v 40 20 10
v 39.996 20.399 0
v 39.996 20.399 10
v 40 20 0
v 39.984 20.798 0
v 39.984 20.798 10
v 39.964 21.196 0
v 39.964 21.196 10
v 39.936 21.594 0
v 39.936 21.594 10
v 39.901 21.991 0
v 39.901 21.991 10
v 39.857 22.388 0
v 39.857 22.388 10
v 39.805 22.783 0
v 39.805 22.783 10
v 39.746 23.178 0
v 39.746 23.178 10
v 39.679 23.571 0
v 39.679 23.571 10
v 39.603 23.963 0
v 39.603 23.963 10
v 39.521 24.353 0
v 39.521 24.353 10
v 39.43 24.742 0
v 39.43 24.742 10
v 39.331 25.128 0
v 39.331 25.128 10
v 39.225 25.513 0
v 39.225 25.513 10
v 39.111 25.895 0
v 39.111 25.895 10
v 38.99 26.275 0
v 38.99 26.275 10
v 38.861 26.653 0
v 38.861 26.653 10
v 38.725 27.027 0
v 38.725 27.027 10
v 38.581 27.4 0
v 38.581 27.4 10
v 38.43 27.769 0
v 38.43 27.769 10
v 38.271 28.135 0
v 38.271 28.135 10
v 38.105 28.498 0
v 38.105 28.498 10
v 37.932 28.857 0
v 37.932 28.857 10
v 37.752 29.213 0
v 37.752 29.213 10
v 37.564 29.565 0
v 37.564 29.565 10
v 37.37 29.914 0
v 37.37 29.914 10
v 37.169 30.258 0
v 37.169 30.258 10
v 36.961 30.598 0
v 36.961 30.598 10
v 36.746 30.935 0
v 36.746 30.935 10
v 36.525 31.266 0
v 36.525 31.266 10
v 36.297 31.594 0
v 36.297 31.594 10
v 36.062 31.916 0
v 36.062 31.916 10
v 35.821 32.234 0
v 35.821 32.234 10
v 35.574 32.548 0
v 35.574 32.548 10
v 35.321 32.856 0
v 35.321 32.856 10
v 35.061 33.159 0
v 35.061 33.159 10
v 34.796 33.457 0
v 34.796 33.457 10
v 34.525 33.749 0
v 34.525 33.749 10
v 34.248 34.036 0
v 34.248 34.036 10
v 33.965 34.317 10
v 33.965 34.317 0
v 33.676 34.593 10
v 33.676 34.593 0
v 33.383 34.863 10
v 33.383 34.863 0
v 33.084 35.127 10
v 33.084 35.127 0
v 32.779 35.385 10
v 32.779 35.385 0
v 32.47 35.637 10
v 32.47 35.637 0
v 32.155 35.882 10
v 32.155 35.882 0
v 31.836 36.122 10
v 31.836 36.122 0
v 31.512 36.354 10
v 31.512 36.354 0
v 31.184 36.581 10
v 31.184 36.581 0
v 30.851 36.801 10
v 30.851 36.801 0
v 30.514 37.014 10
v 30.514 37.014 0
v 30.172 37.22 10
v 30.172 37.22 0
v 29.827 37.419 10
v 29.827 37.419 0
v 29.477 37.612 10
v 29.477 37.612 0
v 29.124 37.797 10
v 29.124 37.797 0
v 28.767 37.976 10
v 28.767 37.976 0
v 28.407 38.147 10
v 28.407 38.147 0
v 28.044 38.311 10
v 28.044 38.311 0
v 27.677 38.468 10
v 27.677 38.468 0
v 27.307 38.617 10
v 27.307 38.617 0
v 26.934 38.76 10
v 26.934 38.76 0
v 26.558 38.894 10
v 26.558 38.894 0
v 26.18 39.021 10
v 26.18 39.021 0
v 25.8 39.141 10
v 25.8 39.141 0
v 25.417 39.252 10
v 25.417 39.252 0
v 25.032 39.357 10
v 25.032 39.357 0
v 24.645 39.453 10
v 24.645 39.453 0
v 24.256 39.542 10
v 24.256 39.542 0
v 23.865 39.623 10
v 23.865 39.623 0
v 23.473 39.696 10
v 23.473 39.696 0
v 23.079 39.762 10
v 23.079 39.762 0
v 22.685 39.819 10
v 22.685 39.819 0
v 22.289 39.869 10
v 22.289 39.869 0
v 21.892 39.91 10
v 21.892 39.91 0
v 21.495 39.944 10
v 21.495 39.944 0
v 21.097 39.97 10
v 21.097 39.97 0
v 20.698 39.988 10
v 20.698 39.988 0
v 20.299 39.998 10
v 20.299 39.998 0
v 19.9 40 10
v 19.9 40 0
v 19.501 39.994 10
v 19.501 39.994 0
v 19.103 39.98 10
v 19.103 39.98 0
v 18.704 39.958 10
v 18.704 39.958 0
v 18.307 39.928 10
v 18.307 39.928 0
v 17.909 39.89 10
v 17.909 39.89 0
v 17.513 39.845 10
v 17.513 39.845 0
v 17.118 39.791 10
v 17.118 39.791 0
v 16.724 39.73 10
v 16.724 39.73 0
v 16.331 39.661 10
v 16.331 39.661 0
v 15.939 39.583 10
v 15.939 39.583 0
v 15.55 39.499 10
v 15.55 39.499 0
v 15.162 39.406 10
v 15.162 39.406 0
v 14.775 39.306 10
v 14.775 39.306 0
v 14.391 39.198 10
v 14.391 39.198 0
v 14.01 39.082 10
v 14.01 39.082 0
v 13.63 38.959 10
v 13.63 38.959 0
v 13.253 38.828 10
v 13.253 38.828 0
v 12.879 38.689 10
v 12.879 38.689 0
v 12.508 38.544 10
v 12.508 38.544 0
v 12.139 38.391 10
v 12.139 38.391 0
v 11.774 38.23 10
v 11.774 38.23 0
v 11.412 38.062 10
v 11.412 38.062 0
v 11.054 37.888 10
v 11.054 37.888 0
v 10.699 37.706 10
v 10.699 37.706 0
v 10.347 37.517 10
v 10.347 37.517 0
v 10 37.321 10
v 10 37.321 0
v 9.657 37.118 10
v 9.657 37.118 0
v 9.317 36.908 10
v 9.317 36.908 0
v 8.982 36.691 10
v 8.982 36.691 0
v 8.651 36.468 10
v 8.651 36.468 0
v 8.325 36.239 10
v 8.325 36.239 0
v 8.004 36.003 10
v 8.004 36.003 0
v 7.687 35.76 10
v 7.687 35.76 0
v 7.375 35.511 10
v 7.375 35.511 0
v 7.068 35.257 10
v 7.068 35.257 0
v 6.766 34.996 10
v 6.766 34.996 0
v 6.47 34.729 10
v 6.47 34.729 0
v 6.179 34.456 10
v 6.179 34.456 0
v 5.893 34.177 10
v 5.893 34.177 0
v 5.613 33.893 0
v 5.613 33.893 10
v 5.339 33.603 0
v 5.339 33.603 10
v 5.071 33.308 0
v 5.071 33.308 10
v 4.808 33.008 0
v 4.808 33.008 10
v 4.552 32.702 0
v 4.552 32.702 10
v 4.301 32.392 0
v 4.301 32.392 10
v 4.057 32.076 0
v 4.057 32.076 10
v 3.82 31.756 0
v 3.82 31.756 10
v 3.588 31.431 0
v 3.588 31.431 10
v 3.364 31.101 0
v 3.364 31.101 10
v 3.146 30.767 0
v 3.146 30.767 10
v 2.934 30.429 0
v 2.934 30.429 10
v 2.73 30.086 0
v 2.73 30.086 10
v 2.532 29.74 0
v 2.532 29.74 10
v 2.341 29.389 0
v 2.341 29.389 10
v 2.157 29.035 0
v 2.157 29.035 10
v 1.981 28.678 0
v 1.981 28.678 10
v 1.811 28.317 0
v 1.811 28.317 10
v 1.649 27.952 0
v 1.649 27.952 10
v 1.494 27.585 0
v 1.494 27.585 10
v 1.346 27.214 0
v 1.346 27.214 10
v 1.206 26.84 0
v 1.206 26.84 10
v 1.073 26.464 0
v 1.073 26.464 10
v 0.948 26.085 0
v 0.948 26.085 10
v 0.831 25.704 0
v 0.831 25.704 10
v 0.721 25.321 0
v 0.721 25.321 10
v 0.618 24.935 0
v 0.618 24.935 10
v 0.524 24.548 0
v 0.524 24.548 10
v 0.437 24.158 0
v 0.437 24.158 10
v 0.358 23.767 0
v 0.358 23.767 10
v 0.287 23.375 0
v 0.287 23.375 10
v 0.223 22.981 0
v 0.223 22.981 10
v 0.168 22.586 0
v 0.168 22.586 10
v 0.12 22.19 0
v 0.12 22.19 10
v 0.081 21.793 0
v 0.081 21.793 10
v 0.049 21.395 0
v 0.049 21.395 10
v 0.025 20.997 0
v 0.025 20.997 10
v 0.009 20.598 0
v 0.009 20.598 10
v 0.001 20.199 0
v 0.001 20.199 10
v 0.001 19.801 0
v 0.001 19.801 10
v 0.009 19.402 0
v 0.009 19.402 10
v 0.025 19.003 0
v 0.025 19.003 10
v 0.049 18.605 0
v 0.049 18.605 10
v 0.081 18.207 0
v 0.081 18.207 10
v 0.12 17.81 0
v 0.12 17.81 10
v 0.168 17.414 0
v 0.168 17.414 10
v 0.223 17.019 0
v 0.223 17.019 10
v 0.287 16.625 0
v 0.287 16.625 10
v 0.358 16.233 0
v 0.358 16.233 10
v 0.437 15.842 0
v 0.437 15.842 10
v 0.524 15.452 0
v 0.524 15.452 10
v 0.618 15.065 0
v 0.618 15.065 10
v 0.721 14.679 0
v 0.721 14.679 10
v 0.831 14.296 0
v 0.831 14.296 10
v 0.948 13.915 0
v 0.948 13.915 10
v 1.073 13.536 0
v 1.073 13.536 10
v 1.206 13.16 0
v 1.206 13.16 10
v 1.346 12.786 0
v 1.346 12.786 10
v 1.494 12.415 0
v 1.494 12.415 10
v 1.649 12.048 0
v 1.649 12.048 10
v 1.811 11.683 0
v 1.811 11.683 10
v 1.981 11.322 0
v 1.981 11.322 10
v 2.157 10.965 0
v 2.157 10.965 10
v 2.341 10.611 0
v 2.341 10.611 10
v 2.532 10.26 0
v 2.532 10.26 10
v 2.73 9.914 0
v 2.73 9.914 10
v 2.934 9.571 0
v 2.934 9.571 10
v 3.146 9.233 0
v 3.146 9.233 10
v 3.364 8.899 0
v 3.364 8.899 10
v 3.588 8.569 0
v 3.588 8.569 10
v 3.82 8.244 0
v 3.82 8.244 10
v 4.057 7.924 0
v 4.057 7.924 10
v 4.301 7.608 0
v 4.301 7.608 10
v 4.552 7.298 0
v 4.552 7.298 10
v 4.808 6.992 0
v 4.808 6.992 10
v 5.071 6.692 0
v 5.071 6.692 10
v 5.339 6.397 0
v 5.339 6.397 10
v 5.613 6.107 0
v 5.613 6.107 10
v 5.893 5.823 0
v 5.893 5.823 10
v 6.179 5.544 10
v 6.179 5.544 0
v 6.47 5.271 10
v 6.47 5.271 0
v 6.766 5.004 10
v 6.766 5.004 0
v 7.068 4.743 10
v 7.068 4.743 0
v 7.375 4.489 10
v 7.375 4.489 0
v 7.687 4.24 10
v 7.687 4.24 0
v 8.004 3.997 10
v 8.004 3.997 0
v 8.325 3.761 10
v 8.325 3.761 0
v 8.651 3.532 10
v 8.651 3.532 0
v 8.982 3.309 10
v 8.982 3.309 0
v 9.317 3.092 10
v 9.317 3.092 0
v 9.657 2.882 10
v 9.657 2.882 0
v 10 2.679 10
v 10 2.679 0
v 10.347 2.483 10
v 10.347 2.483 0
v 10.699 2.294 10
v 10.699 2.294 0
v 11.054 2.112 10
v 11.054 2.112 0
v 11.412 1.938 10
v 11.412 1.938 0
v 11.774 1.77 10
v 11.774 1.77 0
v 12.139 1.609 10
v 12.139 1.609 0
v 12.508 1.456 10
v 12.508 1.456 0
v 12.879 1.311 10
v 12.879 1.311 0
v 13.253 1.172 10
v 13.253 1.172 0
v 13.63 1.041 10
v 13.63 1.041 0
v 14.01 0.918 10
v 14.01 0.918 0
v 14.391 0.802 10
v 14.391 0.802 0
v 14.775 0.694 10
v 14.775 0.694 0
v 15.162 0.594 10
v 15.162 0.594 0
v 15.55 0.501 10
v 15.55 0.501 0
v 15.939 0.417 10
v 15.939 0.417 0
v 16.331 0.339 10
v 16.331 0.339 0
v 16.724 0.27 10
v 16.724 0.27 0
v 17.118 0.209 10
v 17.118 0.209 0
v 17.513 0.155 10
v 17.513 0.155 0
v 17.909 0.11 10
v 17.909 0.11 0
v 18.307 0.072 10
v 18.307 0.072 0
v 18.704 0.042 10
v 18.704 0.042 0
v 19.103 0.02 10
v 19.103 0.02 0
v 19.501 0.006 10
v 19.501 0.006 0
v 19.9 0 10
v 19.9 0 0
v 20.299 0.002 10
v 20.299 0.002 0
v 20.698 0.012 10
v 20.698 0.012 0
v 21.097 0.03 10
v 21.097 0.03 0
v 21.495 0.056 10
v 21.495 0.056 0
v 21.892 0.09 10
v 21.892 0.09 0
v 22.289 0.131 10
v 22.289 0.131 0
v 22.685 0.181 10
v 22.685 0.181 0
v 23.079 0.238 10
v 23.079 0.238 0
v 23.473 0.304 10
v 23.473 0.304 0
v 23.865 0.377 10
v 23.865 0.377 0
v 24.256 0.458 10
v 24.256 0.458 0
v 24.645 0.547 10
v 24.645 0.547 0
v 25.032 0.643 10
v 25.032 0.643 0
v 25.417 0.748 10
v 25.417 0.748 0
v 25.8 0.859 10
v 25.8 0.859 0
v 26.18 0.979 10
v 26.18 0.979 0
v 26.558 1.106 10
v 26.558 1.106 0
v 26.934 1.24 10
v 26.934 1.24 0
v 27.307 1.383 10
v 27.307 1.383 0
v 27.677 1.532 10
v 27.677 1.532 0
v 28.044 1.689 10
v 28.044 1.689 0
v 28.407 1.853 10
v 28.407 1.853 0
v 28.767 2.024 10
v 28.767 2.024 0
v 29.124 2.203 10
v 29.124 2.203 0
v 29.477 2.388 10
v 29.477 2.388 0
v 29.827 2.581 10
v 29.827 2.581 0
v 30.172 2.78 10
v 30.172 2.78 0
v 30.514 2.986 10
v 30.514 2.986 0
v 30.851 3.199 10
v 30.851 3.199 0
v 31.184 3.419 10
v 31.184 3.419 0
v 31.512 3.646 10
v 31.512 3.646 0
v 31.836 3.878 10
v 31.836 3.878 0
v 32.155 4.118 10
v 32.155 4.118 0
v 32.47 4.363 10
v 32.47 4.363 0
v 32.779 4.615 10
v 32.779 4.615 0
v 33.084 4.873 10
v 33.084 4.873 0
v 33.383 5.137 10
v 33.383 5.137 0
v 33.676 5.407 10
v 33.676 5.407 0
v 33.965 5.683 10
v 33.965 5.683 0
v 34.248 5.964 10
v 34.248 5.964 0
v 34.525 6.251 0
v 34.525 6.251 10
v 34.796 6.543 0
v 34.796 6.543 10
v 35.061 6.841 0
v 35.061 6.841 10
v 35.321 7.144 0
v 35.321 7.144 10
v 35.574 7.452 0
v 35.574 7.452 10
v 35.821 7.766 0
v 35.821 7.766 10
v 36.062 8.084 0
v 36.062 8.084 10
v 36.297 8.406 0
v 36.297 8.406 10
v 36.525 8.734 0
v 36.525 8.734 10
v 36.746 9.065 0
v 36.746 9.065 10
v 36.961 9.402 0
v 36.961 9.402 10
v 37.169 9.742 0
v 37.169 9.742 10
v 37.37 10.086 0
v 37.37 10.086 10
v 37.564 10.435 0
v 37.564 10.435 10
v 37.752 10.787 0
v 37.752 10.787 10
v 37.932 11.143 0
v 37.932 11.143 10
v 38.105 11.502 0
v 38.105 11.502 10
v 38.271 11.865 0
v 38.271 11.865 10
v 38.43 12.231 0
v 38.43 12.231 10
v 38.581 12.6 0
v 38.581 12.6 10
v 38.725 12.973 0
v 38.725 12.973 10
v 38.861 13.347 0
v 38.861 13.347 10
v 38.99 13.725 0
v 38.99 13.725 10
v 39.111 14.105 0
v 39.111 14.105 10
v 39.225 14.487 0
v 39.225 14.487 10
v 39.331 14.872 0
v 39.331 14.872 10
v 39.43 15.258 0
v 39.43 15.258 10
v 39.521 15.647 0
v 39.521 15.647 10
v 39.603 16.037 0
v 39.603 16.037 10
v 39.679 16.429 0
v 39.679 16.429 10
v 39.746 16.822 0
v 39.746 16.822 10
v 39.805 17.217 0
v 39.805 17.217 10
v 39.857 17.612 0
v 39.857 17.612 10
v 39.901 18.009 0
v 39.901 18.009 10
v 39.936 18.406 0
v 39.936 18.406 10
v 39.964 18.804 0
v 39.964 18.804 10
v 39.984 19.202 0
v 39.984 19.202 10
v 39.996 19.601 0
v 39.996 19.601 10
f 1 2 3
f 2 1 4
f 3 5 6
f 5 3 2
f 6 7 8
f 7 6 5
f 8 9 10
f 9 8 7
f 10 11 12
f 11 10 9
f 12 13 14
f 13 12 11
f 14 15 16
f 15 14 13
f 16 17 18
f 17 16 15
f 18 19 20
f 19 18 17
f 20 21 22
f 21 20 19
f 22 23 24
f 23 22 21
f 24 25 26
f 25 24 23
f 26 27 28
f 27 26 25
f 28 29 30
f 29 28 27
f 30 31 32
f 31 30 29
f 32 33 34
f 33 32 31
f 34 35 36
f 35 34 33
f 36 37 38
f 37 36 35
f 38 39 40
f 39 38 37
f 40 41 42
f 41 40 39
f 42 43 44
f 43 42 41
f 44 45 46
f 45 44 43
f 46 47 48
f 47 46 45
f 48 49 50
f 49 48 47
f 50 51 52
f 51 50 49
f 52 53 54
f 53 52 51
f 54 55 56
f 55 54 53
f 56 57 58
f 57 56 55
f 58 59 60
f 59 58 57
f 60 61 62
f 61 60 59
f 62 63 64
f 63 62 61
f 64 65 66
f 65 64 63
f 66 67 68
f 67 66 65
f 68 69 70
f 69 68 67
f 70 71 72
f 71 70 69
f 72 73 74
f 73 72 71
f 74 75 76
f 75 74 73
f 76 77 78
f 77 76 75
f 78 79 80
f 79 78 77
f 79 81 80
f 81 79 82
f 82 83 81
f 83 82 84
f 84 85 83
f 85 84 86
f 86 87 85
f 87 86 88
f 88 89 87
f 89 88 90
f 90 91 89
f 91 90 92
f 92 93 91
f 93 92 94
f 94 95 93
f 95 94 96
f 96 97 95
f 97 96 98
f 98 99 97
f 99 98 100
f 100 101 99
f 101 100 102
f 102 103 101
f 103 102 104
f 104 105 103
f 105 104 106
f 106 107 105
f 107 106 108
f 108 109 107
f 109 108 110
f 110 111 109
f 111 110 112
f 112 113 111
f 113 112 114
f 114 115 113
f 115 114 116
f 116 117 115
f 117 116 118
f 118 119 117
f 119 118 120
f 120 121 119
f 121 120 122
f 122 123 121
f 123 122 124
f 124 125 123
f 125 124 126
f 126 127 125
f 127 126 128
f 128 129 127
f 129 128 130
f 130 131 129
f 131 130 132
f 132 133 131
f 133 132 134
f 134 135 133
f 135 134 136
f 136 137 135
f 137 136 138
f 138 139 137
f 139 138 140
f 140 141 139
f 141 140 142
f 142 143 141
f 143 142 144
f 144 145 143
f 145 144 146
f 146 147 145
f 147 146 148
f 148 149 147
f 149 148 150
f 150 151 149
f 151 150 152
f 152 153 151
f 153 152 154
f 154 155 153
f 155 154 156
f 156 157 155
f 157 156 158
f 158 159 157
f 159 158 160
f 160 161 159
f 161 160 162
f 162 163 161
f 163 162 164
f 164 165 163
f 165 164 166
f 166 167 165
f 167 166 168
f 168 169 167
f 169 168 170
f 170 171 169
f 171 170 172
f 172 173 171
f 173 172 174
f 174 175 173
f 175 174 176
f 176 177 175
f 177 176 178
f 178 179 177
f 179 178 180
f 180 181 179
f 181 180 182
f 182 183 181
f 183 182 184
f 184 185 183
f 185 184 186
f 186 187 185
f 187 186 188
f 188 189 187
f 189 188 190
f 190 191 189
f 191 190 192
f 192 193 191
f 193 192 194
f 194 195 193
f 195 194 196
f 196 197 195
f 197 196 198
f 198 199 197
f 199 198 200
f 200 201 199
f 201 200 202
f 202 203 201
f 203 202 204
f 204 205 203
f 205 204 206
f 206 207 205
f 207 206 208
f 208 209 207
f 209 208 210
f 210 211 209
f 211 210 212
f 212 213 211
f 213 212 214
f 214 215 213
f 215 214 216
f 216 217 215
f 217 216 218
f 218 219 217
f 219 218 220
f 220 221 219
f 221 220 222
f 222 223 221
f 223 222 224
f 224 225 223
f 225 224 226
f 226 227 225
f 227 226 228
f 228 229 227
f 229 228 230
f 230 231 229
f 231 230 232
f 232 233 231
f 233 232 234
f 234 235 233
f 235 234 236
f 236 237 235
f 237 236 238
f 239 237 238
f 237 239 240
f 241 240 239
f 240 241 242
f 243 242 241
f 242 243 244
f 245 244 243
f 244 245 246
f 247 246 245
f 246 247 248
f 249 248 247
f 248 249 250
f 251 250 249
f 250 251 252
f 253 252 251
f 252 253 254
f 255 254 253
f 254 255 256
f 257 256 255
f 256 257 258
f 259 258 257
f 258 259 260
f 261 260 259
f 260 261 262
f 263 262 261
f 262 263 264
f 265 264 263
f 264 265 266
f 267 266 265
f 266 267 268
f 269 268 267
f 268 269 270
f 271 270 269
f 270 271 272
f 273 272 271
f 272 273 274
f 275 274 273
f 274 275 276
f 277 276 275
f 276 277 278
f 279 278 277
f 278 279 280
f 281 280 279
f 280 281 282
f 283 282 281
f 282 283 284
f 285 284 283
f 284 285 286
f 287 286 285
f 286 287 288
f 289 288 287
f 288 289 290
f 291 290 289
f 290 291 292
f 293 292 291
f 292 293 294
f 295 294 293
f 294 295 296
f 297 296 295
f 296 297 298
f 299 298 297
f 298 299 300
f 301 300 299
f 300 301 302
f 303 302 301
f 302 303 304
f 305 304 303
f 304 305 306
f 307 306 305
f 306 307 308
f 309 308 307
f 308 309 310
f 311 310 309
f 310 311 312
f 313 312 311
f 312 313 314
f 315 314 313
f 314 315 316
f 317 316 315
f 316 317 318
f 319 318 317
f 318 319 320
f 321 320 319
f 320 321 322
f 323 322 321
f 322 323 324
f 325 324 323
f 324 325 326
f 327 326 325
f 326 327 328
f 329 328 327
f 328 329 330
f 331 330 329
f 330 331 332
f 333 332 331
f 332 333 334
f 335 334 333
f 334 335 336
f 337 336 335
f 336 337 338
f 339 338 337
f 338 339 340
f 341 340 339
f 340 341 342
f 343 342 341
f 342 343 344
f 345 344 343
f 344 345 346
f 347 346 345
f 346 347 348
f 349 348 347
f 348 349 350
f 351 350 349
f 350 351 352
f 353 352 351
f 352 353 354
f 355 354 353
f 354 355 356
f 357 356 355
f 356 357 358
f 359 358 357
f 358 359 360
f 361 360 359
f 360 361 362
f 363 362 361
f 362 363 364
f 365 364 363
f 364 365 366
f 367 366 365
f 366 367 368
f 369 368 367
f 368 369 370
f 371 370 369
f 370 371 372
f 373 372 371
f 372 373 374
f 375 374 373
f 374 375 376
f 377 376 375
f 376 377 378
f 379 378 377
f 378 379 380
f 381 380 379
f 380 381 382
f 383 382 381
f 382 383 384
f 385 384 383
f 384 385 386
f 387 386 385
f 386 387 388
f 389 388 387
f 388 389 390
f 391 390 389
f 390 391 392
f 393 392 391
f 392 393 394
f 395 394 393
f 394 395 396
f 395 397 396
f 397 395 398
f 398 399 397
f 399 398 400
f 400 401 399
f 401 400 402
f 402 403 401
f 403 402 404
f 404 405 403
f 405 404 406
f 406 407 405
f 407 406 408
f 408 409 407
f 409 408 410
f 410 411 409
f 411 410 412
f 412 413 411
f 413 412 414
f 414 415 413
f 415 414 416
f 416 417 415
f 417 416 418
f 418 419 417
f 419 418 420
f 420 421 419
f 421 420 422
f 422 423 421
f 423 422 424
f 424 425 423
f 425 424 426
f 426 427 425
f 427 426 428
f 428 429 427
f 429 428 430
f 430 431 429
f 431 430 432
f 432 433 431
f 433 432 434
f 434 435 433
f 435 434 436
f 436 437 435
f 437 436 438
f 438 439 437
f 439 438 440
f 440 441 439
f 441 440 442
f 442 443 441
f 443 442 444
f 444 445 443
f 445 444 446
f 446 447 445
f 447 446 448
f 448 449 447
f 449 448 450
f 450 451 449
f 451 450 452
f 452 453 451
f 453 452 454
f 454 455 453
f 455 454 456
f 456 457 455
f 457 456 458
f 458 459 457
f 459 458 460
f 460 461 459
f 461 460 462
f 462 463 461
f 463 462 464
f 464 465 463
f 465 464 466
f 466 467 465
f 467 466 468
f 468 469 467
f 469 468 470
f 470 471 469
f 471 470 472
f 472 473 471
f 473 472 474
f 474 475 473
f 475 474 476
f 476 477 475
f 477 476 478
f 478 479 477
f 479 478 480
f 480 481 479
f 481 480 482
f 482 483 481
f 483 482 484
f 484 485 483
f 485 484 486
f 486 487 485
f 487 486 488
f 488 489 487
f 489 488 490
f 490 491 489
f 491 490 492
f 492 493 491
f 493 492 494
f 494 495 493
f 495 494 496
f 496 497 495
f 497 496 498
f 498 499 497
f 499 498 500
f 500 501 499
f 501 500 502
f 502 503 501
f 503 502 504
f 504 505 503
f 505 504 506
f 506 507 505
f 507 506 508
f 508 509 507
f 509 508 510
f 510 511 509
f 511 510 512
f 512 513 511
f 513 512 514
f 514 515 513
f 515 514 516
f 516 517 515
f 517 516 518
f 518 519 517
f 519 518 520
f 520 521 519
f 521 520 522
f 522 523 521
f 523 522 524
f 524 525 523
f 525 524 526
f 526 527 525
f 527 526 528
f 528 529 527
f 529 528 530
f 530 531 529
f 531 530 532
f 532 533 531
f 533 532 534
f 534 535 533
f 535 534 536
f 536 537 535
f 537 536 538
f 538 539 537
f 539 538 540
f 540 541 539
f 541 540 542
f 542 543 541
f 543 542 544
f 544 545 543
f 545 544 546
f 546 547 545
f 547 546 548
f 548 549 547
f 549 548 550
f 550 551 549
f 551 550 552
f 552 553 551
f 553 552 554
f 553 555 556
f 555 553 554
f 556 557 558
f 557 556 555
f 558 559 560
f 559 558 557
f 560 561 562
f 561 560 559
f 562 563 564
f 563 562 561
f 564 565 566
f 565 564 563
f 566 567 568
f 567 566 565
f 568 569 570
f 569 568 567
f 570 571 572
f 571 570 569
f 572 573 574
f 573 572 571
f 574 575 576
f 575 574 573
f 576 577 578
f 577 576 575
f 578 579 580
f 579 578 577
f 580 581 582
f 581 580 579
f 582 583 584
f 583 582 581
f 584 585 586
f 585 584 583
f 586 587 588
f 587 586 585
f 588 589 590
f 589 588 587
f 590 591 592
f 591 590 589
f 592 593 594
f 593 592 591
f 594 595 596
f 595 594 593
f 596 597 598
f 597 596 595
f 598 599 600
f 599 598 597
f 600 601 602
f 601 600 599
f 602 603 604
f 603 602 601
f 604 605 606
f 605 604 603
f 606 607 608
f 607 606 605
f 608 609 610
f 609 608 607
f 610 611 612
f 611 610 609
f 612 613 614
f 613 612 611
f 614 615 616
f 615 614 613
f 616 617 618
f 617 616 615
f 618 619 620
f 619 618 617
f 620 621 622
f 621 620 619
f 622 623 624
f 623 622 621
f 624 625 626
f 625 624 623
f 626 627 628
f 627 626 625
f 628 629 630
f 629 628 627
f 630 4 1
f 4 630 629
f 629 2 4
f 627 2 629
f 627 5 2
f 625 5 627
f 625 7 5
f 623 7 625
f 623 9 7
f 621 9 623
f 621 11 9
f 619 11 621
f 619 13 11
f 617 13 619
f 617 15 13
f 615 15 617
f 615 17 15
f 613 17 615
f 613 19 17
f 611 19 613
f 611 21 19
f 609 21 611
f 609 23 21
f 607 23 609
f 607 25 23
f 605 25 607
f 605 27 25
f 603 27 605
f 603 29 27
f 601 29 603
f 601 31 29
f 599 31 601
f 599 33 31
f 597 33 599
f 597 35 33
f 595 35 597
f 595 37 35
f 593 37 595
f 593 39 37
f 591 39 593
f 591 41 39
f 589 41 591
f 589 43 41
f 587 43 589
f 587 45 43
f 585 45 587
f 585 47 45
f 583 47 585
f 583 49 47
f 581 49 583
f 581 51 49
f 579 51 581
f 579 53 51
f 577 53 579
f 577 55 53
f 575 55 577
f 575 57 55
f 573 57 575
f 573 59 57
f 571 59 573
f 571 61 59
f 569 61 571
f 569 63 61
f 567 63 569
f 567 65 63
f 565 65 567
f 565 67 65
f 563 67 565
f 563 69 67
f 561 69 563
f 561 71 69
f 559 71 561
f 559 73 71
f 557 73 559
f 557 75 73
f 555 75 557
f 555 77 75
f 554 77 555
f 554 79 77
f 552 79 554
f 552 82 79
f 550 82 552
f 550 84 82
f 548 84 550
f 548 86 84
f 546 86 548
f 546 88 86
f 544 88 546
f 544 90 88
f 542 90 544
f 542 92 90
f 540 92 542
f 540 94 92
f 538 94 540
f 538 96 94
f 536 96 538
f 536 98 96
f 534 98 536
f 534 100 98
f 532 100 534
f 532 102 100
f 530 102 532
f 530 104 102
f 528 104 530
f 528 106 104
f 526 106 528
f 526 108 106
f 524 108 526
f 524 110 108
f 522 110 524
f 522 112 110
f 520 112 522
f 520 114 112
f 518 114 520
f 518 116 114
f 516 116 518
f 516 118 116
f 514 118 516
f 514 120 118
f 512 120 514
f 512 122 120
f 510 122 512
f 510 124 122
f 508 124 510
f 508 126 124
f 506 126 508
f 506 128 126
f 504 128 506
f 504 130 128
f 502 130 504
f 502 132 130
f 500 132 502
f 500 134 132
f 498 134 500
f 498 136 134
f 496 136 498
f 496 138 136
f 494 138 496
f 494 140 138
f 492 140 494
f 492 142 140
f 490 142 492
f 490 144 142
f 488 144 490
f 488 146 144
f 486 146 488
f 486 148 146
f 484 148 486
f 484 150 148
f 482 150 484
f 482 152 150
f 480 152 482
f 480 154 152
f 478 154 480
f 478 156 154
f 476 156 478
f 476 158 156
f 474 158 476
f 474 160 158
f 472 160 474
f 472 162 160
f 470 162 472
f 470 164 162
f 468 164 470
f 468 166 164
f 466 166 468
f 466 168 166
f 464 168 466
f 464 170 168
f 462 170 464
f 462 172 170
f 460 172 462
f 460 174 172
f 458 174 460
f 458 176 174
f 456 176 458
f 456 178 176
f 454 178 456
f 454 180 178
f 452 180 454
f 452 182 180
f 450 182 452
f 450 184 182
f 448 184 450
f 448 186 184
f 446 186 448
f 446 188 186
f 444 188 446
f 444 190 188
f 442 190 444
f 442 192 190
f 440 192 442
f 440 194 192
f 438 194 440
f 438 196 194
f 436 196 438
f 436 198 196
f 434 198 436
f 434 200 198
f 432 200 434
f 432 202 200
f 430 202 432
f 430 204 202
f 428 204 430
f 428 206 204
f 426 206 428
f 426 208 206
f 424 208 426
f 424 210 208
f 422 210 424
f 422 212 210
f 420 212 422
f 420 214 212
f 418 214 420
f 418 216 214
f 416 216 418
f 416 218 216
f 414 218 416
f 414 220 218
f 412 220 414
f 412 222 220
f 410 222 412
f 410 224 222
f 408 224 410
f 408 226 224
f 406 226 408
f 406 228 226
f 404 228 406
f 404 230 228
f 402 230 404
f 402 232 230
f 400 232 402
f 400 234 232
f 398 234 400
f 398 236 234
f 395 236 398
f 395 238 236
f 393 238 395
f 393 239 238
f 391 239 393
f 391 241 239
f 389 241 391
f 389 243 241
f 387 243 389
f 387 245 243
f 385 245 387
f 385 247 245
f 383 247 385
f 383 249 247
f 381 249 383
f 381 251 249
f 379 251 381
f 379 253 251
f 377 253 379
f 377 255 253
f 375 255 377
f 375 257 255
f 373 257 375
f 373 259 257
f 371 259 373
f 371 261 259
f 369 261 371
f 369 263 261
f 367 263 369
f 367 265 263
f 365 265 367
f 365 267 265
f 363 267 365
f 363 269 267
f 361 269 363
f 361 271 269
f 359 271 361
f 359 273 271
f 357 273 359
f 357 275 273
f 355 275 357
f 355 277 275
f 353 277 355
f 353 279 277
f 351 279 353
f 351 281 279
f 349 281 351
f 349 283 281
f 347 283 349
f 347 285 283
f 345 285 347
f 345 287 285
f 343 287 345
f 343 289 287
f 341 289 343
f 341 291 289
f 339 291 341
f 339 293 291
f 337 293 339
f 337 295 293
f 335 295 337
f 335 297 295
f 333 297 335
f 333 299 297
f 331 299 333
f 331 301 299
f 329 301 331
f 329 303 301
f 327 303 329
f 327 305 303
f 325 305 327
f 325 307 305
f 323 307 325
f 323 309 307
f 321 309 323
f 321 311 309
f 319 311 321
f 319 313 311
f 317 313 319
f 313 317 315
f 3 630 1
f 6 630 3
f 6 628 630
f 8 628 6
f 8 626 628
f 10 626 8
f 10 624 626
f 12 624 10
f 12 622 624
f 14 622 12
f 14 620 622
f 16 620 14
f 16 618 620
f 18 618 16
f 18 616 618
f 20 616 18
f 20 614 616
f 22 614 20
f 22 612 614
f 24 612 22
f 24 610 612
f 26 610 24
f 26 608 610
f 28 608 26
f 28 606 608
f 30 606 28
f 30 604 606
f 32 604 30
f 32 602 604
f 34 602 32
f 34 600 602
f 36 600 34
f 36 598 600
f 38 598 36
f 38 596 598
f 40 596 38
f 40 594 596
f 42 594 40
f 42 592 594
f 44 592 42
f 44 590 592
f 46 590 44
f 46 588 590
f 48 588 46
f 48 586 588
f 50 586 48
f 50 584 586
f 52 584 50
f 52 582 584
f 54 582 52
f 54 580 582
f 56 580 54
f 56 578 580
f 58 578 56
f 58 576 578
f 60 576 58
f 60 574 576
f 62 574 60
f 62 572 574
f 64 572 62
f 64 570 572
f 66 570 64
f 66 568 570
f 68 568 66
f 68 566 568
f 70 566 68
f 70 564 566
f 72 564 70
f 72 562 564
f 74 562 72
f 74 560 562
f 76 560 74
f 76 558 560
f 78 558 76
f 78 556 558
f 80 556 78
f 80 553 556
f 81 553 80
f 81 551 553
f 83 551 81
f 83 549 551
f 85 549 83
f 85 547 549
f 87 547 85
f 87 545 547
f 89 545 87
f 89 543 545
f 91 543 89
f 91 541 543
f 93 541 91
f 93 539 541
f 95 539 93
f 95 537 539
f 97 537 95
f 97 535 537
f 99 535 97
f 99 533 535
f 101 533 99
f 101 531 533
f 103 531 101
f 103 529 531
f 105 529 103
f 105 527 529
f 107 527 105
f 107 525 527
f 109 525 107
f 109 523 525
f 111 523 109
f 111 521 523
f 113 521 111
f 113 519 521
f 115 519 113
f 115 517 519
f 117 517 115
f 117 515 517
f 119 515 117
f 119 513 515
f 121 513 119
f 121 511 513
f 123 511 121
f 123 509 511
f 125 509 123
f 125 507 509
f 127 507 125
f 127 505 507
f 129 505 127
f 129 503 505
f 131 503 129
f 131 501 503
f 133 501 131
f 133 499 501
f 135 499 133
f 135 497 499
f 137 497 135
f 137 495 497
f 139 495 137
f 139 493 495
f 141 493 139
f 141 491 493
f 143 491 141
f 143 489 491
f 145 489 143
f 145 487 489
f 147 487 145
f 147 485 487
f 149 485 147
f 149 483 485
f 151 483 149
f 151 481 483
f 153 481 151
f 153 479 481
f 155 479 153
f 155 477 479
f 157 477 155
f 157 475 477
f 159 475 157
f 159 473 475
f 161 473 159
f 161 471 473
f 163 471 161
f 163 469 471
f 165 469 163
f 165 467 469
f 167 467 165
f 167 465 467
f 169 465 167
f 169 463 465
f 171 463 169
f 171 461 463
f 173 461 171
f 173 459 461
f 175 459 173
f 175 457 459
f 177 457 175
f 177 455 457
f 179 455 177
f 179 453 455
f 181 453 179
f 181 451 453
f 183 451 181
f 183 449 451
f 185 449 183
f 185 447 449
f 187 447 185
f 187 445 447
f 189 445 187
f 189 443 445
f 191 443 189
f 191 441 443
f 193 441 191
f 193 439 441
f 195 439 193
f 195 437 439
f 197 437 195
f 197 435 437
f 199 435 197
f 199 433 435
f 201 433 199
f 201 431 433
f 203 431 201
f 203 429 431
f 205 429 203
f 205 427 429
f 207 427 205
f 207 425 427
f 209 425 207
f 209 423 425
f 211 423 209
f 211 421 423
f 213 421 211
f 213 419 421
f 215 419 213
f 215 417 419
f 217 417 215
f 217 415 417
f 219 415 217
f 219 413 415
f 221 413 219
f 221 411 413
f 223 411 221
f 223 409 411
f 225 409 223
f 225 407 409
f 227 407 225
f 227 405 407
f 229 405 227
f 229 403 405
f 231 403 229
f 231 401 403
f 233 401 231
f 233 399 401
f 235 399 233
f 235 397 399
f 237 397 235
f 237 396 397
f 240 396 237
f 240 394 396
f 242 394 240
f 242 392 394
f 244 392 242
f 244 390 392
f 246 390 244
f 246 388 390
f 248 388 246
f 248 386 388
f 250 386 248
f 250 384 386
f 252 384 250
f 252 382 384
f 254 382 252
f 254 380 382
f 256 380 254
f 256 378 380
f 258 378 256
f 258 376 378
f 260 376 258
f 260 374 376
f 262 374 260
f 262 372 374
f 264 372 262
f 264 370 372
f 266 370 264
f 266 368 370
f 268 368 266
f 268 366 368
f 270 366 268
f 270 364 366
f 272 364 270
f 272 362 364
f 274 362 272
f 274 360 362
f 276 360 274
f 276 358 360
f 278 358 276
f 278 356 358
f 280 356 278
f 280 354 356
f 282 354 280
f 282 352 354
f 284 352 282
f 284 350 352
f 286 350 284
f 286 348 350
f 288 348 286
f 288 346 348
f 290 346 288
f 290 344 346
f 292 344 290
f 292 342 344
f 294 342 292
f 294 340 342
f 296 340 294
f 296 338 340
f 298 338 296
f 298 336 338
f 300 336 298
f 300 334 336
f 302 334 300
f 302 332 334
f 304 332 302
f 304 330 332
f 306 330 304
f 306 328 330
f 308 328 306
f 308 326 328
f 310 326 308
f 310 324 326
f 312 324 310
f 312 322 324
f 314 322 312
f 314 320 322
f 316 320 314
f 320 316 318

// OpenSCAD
// -----------------------------------------------------------------------------
// 3D-Model (OpenSCAD) of stand
//
// Author: Bernhard Bablok
// License: GPL3
//
// Website: https://github.com/bablokb/pi-webradio
//
// -----------------------------------------------------------------------------

$fa = 1;
$fs = 0.4;

translate([20,20,0]) cylinder(10,r=20);
